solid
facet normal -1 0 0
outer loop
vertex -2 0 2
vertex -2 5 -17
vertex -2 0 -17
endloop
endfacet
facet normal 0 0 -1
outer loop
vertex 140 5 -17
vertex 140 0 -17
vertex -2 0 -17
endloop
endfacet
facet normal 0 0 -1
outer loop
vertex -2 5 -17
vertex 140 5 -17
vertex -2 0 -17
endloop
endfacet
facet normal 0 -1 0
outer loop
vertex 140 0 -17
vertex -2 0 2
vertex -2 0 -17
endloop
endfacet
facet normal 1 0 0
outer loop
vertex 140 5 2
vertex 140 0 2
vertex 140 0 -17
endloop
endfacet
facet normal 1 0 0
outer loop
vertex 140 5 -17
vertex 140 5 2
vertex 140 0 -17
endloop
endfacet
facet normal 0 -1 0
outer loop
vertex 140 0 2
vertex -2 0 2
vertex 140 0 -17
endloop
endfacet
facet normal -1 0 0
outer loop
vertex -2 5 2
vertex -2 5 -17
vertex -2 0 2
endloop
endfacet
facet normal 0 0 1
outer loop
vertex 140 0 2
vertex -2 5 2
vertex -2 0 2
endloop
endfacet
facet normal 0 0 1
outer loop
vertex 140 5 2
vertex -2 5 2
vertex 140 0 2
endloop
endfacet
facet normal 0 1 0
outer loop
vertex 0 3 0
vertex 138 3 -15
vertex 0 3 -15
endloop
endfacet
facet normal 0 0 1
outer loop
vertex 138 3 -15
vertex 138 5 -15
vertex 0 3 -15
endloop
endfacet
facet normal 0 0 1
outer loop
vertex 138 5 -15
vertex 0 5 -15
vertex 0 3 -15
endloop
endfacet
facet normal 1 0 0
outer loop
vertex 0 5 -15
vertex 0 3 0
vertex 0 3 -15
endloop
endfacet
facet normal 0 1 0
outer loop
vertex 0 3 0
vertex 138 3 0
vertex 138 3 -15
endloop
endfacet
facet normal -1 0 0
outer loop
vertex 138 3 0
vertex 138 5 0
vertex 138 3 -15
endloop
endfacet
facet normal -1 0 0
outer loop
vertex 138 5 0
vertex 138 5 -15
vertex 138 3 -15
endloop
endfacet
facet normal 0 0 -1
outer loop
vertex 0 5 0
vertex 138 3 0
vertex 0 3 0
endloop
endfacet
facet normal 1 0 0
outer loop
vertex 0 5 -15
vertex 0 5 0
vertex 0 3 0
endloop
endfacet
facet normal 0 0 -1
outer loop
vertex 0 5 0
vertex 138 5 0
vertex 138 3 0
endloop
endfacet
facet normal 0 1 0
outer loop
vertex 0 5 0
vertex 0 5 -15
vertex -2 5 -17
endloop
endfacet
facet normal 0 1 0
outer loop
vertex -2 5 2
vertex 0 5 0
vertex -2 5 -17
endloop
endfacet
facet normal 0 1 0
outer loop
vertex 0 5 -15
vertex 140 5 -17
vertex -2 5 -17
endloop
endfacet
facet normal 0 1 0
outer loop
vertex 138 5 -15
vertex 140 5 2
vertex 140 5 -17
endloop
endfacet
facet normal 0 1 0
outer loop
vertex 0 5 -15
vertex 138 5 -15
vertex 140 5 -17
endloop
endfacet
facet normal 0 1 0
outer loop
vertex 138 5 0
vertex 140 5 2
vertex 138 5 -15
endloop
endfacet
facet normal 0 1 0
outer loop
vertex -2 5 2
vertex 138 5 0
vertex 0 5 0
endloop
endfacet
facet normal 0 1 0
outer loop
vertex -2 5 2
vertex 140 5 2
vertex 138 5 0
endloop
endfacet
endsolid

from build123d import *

# Parameters (mm, degrees)
SKETCH1_W           = 138
SKETCH1_H           = 15
BOSS_EXTRUDE1_DEPTH = 3
SKETCH2_W           = 142
SKETCH2_H           = 19
SKETCH2_W_2         = 138
SKETCH2_H_2         = 15
BOSS_EXTRUDE2_DEPTH = 5


with BuildPart() as part:
    # Sketch1 → Boss-Extrude1 (new body)
    with BuildSketch(Plane(origin=(0, 0, 0), x_dir=(1, 0, 0), z_dir=(0, 1, 0))):
        with Locations((69, 7.5)):
            Rectangle(SKETCH1_W, SKETCH1_H)
    extrude(amount=BOSS_EXTRUDE1_DEPTH)

    # Sketch2 → Boss-Extrude2 (add)
    with BuildSketch(Plane.XZ):
        with Locations((69, -7.5)):
            Rectangle(SKETCH2_W, SKETCH2_H)
        with Locations((69, -7.5)):
            Rectangle(SKETCH2_W_2, SKETCH2_H_2, mode=Mode.SUBTRACT)
    extrude(amount=-BOSS_EXTRUDE2_DEPTH)


solid = part.part
